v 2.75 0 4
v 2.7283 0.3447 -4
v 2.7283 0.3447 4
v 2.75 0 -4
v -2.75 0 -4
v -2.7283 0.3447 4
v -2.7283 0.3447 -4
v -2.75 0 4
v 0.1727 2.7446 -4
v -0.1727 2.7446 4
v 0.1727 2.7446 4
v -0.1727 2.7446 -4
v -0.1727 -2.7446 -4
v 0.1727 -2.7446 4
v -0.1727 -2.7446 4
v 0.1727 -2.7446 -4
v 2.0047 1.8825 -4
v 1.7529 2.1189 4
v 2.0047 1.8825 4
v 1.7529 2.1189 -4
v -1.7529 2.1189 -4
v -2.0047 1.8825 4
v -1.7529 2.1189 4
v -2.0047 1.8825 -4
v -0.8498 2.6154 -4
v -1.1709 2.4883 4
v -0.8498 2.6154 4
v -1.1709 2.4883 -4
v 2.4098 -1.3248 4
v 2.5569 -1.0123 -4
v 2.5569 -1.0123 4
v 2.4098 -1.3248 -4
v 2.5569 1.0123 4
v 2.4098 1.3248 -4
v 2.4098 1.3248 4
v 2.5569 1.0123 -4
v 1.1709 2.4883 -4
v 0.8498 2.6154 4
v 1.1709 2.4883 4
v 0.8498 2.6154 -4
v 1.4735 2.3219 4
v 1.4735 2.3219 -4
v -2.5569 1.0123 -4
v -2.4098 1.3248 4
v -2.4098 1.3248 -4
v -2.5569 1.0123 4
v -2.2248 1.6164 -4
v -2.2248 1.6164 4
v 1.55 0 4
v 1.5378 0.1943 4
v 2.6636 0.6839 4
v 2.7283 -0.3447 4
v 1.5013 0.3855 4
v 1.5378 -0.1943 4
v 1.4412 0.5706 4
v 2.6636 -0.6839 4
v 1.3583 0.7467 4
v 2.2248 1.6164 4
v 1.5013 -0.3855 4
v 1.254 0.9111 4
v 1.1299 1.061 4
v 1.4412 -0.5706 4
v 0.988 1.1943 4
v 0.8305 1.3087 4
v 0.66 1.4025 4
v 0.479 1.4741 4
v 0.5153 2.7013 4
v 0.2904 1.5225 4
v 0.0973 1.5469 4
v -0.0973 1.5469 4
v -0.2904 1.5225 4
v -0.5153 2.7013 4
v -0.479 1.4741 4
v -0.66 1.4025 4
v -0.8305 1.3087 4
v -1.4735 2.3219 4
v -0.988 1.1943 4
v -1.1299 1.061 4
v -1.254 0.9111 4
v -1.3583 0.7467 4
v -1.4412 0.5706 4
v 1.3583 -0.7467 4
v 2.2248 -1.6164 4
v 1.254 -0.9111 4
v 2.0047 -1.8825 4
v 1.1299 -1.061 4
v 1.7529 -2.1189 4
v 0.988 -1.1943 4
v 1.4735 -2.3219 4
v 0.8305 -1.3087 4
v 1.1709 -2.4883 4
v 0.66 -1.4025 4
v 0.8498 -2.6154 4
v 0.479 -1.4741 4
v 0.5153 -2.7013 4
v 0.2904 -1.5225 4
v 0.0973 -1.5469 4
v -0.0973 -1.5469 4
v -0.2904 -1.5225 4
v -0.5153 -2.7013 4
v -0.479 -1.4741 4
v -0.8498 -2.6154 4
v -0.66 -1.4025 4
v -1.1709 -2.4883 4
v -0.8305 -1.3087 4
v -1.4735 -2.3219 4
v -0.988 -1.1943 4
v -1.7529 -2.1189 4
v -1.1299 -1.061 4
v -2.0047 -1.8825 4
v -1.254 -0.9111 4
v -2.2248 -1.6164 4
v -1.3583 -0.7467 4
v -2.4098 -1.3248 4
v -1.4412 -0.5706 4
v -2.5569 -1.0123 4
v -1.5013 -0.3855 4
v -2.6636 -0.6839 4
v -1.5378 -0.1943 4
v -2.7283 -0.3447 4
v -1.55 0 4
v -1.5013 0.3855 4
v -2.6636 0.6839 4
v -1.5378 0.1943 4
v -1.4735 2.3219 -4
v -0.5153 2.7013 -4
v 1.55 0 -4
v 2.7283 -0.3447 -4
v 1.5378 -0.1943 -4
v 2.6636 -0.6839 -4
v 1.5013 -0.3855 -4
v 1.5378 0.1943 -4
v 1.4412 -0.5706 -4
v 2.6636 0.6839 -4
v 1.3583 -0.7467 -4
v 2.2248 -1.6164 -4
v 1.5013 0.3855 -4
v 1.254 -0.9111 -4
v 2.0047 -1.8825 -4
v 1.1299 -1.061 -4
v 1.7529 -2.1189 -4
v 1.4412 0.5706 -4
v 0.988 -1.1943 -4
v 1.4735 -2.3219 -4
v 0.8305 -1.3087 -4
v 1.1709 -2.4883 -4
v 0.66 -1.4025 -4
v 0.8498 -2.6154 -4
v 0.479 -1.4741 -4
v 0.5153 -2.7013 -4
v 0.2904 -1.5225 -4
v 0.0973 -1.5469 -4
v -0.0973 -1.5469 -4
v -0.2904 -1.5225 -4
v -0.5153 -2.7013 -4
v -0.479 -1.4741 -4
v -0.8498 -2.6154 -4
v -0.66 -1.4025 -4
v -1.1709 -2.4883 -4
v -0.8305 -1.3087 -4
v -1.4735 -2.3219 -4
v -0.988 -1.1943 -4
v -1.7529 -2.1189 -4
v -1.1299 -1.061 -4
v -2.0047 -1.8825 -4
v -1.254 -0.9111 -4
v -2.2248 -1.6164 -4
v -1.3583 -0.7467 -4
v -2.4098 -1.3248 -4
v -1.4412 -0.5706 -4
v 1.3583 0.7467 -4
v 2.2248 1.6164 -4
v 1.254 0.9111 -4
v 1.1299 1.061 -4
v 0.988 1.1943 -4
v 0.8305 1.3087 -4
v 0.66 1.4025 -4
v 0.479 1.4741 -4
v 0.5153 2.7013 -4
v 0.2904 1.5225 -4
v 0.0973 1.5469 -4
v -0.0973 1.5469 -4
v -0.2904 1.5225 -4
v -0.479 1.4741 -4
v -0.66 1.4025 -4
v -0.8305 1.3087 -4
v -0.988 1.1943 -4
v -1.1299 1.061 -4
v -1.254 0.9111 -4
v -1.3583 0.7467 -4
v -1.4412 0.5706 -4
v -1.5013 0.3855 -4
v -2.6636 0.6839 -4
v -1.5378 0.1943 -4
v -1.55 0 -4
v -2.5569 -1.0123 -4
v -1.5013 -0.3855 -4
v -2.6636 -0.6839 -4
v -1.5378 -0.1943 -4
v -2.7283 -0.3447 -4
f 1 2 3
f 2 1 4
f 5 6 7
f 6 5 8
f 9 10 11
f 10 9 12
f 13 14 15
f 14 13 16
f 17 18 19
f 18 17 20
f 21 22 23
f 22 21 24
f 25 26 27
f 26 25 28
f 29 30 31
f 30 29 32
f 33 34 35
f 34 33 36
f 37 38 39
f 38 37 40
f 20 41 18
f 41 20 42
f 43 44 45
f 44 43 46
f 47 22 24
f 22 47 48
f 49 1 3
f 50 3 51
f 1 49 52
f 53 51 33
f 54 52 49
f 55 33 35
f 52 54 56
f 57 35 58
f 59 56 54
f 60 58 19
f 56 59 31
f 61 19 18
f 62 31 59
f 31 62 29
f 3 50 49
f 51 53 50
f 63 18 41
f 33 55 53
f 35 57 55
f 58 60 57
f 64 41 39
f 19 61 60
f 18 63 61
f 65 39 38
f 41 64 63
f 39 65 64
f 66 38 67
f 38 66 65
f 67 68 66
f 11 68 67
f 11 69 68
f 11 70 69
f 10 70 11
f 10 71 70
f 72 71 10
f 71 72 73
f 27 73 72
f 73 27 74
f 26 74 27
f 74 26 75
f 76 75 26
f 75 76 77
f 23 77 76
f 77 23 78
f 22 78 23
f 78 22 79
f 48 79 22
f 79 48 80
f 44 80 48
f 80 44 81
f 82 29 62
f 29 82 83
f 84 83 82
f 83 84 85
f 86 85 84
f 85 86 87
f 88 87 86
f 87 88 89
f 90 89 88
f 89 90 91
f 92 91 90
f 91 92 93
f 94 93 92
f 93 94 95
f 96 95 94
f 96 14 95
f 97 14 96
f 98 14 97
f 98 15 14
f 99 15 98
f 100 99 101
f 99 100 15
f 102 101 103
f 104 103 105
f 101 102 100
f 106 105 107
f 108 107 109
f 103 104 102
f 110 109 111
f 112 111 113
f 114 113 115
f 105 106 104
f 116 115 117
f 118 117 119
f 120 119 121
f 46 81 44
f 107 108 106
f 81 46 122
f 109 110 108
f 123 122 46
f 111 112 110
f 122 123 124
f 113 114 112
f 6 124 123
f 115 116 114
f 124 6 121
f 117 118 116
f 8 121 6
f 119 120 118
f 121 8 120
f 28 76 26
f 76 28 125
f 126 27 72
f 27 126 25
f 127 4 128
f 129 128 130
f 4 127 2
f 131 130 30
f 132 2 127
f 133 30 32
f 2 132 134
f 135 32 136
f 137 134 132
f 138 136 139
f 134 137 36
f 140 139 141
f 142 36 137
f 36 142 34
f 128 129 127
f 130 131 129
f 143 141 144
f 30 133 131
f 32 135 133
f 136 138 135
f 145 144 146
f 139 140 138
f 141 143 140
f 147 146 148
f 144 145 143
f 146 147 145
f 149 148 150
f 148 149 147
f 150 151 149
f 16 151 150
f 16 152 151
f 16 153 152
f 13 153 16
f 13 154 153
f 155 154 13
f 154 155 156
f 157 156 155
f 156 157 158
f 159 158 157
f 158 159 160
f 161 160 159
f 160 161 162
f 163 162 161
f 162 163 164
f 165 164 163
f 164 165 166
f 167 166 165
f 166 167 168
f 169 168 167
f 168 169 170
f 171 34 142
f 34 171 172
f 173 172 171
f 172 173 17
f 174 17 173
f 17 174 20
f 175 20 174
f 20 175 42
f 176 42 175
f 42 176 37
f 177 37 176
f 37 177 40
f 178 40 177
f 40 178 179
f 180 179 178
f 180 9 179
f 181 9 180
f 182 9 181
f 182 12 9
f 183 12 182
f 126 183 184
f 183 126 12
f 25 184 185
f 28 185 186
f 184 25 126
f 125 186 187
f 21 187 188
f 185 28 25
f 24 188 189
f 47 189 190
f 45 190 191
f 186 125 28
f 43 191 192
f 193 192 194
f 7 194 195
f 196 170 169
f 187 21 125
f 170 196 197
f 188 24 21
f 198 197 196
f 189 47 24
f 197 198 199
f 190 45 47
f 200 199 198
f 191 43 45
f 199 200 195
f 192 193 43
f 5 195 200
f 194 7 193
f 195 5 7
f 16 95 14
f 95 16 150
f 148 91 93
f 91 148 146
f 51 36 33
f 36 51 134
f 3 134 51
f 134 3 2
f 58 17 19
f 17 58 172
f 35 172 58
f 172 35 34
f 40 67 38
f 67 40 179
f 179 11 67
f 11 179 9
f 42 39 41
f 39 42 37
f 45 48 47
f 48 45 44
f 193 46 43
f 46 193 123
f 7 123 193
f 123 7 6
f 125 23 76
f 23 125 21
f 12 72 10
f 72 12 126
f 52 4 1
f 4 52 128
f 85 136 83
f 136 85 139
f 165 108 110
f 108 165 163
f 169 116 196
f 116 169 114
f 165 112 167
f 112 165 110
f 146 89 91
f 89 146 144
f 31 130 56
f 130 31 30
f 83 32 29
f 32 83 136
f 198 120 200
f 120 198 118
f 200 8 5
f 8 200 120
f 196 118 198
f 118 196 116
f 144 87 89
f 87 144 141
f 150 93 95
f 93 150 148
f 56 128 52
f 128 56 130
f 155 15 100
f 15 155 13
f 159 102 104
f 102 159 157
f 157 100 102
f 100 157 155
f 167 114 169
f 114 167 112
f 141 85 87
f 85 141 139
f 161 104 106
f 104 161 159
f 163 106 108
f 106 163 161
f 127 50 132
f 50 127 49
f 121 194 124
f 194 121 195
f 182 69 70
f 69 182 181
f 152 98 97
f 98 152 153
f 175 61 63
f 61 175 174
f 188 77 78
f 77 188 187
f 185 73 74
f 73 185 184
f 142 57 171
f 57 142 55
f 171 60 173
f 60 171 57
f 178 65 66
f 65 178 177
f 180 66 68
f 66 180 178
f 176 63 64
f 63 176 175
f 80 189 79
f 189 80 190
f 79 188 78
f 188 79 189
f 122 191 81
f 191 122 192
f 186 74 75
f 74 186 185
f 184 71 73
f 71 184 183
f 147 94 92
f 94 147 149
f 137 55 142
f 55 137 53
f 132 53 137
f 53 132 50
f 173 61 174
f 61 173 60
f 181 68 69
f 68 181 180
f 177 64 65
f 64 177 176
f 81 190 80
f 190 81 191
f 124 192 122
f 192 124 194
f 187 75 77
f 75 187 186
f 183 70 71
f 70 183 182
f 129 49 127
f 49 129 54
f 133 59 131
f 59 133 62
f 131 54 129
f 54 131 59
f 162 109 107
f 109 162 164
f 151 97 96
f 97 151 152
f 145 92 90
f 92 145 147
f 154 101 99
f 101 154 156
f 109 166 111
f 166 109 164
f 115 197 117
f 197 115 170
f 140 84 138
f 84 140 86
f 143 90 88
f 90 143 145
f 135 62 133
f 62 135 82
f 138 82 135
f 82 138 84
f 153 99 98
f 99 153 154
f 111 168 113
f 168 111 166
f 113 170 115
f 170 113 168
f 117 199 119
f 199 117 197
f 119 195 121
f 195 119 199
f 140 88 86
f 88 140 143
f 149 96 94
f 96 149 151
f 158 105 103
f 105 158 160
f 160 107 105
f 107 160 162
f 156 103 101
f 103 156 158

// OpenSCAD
$fn = 50;


difference() {
	union() {
		translate(v = [0, 0, -4.0000000000]) {
			cylinder(h = 8, r = 2.7500000000);
		}
	}
	union() {
		translate(v = [0, 0, -100.0000000000]) {
			cylinder(h = 200, r = 1.5500000000);
		}
	}
}
